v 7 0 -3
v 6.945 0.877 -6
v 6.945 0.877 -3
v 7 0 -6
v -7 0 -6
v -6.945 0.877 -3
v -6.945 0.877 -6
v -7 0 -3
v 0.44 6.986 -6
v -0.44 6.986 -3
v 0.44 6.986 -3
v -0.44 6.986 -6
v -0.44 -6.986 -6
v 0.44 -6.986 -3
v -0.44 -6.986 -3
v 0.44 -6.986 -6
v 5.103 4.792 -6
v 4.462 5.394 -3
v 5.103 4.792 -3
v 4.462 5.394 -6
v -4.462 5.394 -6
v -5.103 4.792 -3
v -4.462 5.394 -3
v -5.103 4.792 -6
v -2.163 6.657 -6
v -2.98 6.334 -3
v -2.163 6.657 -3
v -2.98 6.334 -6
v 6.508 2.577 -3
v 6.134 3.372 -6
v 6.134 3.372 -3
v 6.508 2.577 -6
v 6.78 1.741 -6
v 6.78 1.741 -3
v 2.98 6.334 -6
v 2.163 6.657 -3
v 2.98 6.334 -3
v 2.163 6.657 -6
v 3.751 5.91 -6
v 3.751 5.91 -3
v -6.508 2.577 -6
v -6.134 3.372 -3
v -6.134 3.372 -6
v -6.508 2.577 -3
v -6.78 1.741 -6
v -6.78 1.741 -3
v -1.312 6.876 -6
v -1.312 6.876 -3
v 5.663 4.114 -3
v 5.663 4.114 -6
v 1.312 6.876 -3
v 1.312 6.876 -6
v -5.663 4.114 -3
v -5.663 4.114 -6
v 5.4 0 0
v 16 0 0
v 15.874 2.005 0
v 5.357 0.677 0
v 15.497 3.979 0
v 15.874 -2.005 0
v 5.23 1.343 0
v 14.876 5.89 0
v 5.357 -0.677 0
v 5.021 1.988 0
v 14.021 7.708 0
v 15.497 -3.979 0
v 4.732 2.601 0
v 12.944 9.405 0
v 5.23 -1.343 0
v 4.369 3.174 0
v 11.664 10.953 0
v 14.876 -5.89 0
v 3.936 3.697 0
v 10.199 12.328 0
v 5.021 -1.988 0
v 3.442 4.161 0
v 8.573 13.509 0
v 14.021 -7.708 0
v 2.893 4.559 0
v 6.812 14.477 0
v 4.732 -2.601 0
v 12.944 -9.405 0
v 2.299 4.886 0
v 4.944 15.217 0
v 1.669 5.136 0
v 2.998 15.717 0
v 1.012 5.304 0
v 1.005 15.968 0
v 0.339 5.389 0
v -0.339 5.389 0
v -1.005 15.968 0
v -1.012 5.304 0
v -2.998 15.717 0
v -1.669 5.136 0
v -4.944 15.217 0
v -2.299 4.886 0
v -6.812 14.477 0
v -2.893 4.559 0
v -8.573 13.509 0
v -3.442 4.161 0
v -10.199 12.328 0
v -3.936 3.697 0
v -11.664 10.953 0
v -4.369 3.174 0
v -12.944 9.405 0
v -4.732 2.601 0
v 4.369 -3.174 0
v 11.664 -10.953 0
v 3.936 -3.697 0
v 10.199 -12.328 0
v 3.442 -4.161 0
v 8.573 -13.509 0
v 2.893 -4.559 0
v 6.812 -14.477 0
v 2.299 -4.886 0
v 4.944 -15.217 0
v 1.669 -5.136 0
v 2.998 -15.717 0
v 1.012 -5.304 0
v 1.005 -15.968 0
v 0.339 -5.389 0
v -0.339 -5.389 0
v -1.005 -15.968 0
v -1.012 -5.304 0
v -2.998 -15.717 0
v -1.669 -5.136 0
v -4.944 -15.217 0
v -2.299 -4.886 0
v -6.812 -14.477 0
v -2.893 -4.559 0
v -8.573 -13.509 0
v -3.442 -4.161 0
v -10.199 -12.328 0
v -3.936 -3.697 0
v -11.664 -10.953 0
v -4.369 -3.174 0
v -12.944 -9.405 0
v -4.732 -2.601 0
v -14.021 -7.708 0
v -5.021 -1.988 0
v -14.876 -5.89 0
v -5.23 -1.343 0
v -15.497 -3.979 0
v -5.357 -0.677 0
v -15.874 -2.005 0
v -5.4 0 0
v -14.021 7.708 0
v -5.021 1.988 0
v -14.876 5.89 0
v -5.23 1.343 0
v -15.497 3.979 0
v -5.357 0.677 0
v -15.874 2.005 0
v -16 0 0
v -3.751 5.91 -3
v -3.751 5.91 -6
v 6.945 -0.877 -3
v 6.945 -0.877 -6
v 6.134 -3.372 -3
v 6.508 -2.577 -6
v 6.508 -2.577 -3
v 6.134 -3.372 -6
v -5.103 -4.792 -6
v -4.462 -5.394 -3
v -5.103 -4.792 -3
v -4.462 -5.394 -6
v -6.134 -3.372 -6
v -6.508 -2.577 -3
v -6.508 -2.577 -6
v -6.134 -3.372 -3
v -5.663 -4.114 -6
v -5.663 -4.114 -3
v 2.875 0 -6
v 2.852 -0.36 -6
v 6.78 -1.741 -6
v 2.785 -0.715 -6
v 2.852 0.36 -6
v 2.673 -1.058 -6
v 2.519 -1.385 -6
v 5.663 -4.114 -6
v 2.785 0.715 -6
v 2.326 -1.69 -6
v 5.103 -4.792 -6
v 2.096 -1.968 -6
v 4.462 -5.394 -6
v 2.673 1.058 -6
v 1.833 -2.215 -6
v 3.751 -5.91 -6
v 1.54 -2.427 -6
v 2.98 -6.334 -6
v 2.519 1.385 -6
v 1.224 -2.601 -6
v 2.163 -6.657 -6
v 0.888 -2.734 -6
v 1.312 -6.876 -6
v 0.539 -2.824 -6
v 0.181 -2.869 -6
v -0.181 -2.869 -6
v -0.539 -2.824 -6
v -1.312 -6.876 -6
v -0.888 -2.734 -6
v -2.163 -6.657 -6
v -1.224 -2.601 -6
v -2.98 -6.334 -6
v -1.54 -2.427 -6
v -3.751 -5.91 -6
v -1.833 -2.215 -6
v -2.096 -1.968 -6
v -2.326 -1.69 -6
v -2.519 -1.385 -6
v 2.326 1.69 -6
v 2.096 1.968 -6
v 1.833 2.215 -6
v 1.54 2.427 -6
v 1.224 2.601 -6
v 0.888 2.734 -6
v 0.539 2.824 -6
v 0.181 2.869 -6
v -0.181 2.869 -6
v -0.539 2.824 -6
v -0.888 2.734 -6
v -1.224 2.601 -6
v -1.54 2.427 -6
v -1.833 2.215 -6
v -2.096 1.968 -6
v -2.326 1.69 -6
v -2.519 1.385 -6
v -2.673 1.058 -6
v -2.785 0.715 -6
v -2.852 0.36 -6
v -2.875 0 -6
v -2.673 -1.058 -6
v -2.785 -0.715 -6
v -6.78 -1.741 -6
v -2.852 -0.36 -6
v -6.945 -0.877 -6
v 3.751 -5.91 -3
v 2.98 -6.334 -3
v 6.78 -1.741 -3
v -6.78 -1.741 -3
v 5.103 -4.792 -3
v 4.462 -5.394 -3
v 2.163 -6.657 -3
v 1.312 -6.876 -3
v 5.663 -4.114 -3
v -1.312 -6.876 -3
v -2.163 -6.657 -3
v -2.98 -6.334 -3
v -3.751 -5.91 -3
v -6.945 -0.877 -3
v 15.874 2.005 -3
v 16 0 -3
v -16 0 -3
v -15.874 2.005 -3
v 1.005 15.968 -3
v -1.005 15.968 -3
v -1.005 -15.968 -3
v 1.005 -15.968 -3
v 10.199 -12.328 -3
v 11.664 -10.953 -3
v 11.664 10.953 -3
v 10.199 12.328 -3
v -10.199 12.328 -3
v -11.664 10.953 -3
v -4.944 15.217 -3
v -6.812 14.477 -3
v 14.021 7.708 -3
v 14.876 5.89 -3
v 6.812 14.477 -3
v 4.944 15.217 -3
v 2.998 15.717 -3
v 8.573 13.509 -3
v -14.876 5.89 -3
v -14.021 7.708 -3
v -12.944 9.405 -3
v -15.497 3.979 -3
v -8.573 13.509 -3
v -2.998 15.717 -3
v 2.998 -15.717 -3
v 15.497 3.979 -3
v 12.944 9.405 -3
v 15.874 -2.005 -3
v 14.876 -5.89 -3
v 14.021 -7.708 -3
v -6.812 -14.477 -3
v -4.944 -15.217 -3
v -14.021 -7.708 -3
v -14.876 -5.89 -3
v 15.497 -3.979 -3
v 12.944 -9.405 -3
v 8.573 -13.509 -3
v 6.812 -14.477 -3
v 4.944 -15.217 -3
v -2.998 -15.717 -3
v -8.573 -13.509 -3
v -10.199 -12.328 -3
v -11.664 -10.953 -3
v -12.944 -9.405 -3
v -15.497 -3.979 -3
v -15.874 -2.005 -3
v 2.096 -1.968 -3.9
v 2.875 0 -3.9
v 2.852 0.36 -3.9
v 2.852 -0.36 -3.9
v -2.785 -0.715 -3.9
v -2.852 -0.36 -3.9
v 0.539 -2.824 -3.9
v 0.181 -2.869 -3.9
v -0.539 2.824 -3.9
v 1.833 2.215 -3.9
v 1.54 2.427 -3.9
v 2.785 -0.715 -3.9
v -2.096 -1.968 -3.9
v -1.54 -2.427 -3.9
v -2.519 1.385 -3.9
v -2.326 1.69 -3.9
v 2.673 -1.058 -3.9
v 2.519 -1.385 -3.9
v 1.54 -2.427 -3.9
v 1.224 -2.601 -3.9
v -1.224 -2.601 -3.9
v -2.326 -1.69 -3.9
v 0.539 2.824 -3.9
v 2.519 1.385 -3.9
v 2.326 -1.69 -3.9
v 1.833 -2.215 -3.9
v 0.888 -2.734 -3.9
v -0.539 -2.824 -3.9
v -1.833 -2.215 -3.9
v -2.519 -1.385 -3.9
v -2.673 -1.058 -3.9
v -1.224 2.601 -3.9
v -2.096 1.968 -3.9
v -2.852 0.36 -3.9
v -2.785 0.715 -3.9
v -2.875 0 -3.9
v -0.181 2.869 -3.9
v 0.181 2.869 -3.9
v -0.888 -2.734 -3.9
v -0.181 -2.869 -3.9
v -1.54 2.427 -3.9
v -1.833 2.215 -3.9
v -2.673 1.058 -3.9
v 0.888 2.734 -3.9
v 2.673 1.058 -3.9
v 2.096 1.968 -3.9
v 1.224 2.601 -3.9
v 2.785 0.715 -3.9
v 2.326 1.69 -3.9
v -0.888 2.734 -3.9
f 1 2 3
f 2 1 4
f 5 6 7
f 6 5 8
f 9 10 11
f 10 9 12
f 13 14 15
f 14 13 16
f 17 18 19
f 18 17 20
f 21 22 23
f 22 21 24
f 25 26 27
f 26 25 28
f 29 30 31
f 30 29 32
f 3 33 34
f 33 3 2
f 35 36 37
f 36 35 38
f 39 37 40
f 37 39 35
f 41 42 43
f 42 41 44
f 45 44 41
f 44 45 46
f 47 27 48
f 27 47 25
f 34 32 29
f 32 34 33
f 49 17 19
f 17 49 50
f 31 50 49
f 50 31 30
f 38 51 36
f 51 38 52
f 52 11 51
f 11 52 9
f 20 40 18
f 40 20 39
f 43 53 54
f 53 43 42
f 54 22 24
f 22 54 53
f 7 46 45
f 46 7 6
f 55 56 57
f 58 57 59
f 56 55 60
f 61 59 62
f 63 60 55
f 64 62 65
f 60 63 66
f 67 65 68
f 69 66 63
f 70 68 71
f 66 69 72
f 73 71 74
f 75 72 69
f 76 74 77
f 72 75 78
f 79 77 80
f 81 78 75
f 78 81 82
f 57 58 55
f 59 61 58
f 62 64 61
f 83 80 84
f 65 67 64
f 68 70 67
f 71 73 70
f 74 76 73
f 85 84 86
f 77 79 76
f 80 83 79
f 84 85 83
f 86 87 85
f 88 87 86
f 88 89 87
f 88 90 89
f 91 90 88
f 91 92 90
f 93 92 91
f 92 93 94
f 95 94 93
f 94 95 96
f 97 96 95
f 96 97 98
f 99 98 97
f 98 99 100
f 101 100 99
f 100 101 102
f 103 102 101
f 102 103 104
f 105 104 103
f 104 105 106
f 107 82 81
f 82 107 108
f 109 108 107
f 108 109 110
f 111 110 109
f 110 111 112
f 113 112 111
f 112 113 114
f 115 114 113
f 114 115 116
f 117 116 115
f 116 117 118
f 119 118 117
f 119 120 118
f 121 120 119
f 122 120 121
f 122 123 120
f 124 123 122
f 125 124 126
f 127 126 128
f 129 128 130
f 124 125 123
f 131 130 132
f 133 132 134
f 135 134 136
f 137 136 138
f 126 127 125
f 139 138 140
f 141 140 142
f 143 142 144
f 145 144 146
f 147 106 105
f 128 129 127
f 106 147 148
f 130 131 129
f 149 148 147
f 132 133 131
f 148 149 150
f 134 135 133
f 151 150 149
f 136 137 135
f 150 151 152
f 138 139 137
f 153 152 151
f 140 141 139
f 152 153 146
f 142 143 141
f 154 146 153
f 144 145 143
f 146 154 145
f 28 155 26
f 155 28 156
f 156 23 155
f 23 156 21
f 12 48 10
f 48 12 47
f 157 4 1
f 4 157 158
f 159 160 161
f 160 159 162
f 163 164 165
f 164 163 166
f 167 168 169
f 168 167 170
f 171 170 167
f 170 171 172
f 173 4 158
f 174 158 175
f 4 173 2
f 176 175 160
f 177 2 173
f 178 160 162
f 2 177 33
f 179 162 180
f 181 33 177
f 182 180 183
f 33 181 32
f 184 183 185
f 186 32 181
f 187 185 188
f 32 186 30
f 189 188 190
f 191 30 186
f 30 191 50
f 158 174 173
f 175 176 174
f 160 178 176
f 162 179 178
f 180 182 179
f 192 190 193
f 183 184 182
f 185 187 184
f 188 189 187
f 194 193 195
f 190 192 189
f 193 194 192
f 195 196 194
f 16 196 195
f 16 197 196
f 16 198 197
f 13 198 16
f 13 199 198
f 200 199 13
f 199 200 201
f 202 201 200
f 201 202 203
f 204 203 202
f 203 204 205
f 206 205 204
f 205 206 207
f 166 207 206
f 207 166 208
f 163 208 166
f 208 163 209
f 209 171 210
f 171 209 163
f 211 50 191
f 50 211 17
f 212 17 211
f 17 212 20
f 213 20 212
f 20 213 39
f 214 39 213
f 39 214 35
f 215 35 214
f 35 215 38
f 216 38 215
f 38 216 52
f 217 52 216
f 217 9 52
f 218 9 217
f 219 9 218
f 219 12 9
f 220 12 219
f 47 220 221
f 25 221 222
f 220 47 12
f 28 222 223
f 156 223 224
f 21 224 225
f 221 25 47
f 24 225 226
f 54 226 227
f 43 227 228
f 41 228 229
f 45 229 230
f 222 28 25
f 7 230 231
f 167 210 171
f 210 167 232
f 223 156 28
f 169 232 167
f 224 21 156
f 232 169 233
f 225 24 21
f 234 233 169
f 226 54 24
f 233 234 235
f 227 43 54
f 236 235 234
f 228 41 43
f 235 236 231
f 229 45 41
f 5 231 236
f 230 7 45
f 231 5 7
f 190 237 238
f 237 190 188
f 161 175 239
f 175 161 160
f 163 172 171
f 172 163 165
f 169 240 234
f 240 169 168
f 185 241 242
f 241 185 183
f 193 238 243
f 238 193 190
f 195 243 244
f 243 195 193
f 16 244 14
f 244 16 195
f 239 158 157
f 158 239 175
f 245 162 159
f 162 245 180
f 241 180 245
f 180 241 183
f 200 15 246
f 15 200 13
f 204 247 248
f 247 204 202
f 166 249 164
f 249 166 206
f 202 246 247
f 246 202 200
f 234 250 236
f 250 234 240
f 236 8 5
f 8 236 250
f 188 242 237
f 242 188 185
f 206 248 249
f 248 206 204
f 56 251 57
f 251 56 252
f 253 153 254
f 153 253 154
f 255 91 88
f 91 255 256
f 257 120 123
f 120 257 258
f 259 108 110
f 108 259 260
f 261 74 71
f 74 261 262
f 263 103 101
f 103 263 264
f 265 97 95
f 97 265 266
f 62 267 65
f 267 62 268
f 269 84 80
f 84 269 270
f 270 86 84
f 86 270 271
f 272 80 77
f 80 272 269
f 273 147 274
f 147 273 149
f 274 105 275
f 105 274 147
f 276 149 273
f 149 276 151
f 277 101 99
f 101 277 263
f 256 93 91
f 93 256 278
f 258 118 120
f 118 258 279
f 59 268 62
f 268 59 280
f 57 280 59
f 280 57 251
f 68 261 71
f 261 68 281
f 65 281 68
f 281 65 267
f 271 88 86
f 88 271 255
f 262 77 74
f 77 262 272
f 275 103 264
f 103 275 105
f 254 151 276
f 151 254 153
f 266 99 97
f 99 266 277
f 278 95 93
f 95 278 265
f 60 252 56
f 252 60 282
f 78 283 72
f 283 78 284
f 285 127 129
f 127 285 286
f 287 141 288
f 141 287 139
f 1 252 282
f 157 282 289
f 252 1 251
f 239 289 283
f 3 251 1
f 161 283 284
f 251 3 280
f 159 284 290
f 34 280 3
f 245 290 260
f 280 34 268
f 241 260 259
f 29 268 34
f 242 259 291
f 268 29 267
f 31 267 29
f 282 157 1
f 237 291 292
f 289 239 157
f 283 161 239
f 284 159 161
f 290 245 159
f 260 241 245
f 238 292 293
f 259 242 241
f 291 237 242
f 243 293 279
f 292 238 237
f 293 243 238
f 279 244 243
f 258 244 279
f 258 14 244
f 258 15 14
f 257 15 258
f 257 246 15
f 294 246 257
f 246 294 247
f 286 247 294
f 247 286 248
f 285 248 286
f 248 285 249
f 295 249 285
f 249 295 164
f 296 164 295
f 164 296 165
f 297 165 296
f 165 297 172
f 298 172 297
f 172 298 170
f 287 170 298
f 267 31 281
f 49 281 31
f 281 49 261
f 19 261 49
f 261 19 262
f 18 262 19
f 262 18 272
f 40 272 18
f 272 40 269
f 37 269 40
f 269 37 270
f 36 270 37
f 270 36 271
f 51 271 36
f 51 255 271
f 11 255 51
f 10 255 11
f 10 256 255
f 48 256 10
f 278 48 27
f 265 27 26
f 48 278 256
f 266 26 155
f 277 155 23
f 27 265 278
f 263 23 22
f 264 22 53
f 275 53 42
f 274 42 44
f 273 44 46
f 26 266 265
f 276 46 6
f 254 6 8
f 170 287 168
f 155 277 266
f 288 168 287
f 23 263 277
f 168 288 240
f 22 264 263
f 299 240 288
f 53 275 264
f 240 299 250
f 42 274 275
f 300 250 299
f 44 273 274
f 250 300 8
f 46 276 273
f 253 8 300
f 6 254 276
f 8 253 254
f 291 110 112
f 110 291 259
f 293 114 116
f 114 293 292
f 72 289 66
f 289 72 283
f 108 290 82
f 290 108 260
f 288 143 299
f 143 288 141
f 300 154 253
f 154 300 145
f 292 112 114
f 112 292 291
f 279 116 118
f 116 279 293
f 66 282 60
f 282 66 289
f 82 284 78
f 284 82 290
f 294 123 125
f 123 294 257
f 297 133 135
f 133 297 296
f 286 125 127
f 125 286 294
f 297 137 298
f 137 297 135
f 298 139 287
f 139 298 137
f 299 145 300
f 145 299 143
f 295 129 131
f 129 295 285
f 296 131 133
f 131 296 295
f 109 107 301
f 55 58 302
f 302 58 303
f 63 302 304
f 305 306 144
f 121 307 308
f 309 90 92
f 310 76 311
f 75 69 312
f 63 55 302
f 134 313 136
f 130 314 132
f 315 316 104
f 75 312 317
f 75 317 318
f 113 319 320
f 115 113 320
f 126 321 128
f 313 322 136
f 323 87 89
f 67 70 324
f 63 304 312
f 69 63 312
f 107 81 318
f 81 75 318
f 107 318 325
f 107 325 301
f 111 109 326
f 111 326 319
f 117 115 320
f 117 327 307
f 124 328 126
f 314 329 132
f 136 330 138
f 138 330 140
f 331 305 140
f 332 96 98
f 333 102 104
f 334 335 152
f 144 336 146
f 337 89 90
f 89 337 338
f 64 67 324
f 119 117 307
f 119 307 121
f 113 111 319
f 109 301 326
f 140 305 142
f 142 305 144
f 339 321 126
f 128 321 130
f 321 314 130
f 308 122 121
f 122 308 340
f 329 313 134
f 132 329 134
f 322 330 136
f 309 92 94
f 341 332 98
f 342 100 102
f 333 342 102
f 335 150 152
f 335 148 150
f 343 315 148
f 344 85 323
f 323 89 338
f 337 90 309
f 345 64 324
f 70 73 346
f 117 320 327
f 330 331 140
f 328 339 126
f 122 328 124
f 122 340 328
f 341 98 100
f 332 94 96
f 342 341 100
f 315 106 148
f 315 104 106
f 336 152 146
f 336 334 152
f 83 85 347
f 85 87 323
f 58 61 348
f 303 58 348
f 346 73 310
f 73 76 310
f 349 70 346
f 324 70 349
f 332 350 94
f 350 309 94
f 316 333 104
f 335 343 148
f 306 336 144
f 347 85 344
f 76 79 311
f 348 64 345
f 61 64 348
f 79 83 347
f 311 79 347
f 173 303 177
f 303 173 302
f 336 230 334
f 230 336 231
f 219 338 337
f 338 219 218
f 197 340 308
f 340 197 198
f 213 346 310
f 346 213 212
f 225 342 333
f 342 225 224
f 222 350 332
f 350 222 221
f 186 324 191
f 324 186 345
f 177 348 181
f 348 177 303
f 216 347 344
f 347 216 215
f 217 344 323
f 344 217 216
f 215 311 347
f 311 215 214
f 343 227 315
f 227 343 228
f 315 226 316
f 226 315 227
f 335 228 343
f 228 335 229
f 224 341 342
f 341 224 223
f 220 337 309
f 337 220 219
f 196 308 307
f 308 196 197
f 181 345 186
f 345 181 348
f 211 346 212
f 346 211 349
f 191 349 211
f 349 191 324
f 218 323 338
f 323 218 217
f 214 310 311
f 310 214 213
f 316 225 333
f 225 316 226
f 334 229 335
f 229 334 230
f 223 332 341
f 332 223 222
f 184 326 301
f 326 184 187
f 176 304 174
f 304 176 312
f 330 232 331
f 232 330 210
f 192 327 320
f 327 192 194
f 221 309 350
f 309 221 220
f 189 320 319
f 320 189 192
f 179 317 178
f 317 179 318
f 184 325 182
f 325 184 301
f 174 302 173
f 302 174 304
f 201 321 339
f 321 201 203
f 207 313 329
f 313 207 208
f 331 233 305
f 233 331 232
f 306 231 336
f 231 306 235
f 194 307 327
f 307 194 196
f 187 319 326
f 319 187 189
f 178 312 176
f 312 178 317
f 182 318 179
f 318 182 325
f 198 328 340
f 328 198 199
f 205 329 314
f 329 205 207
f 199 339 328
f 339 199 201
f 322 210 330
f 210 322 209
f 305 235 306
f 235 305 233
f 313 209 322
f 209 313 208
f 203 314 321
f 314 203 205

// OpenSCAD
$fn = 50;


difference() {
	union() {
		translate(v = [0, 0, -6.0000000000]) {
			cylinder(h = 6, r = 7.0000000000);
		}
		translate(v = [0, 0, -3.0000000000]) {
			cylinder(h = 3, r = 16.0000000000);
		}
	}
	union() {
		translate(v = [0, 0, 0]) {
			rotate(a = [0, 0, 0]) {
				difference() {
					union() {
						#translate(v = [0, 0, -6.0000000000]) {
							cylinder(h = 6, r = 2.6000000000);
						}
						#translate(v = [0, 0, -3.9000000000]) {
							cylinder(h = 3.9000000000, r = 7.0000000000, r1 = 2.8750000000, r2 = 5.4000000000);
						}
						#translate(v = [0, 0, -6.0000000000]) {
							cylinder(h = 6, r = 2.8750000000);
						}
						#translate(v = [0, 0, -6.0000000000]) {
							cylinder(h = 6, r = 2.6000000000);
						}
					}
					union();
				}
			}
		}
	}
}
